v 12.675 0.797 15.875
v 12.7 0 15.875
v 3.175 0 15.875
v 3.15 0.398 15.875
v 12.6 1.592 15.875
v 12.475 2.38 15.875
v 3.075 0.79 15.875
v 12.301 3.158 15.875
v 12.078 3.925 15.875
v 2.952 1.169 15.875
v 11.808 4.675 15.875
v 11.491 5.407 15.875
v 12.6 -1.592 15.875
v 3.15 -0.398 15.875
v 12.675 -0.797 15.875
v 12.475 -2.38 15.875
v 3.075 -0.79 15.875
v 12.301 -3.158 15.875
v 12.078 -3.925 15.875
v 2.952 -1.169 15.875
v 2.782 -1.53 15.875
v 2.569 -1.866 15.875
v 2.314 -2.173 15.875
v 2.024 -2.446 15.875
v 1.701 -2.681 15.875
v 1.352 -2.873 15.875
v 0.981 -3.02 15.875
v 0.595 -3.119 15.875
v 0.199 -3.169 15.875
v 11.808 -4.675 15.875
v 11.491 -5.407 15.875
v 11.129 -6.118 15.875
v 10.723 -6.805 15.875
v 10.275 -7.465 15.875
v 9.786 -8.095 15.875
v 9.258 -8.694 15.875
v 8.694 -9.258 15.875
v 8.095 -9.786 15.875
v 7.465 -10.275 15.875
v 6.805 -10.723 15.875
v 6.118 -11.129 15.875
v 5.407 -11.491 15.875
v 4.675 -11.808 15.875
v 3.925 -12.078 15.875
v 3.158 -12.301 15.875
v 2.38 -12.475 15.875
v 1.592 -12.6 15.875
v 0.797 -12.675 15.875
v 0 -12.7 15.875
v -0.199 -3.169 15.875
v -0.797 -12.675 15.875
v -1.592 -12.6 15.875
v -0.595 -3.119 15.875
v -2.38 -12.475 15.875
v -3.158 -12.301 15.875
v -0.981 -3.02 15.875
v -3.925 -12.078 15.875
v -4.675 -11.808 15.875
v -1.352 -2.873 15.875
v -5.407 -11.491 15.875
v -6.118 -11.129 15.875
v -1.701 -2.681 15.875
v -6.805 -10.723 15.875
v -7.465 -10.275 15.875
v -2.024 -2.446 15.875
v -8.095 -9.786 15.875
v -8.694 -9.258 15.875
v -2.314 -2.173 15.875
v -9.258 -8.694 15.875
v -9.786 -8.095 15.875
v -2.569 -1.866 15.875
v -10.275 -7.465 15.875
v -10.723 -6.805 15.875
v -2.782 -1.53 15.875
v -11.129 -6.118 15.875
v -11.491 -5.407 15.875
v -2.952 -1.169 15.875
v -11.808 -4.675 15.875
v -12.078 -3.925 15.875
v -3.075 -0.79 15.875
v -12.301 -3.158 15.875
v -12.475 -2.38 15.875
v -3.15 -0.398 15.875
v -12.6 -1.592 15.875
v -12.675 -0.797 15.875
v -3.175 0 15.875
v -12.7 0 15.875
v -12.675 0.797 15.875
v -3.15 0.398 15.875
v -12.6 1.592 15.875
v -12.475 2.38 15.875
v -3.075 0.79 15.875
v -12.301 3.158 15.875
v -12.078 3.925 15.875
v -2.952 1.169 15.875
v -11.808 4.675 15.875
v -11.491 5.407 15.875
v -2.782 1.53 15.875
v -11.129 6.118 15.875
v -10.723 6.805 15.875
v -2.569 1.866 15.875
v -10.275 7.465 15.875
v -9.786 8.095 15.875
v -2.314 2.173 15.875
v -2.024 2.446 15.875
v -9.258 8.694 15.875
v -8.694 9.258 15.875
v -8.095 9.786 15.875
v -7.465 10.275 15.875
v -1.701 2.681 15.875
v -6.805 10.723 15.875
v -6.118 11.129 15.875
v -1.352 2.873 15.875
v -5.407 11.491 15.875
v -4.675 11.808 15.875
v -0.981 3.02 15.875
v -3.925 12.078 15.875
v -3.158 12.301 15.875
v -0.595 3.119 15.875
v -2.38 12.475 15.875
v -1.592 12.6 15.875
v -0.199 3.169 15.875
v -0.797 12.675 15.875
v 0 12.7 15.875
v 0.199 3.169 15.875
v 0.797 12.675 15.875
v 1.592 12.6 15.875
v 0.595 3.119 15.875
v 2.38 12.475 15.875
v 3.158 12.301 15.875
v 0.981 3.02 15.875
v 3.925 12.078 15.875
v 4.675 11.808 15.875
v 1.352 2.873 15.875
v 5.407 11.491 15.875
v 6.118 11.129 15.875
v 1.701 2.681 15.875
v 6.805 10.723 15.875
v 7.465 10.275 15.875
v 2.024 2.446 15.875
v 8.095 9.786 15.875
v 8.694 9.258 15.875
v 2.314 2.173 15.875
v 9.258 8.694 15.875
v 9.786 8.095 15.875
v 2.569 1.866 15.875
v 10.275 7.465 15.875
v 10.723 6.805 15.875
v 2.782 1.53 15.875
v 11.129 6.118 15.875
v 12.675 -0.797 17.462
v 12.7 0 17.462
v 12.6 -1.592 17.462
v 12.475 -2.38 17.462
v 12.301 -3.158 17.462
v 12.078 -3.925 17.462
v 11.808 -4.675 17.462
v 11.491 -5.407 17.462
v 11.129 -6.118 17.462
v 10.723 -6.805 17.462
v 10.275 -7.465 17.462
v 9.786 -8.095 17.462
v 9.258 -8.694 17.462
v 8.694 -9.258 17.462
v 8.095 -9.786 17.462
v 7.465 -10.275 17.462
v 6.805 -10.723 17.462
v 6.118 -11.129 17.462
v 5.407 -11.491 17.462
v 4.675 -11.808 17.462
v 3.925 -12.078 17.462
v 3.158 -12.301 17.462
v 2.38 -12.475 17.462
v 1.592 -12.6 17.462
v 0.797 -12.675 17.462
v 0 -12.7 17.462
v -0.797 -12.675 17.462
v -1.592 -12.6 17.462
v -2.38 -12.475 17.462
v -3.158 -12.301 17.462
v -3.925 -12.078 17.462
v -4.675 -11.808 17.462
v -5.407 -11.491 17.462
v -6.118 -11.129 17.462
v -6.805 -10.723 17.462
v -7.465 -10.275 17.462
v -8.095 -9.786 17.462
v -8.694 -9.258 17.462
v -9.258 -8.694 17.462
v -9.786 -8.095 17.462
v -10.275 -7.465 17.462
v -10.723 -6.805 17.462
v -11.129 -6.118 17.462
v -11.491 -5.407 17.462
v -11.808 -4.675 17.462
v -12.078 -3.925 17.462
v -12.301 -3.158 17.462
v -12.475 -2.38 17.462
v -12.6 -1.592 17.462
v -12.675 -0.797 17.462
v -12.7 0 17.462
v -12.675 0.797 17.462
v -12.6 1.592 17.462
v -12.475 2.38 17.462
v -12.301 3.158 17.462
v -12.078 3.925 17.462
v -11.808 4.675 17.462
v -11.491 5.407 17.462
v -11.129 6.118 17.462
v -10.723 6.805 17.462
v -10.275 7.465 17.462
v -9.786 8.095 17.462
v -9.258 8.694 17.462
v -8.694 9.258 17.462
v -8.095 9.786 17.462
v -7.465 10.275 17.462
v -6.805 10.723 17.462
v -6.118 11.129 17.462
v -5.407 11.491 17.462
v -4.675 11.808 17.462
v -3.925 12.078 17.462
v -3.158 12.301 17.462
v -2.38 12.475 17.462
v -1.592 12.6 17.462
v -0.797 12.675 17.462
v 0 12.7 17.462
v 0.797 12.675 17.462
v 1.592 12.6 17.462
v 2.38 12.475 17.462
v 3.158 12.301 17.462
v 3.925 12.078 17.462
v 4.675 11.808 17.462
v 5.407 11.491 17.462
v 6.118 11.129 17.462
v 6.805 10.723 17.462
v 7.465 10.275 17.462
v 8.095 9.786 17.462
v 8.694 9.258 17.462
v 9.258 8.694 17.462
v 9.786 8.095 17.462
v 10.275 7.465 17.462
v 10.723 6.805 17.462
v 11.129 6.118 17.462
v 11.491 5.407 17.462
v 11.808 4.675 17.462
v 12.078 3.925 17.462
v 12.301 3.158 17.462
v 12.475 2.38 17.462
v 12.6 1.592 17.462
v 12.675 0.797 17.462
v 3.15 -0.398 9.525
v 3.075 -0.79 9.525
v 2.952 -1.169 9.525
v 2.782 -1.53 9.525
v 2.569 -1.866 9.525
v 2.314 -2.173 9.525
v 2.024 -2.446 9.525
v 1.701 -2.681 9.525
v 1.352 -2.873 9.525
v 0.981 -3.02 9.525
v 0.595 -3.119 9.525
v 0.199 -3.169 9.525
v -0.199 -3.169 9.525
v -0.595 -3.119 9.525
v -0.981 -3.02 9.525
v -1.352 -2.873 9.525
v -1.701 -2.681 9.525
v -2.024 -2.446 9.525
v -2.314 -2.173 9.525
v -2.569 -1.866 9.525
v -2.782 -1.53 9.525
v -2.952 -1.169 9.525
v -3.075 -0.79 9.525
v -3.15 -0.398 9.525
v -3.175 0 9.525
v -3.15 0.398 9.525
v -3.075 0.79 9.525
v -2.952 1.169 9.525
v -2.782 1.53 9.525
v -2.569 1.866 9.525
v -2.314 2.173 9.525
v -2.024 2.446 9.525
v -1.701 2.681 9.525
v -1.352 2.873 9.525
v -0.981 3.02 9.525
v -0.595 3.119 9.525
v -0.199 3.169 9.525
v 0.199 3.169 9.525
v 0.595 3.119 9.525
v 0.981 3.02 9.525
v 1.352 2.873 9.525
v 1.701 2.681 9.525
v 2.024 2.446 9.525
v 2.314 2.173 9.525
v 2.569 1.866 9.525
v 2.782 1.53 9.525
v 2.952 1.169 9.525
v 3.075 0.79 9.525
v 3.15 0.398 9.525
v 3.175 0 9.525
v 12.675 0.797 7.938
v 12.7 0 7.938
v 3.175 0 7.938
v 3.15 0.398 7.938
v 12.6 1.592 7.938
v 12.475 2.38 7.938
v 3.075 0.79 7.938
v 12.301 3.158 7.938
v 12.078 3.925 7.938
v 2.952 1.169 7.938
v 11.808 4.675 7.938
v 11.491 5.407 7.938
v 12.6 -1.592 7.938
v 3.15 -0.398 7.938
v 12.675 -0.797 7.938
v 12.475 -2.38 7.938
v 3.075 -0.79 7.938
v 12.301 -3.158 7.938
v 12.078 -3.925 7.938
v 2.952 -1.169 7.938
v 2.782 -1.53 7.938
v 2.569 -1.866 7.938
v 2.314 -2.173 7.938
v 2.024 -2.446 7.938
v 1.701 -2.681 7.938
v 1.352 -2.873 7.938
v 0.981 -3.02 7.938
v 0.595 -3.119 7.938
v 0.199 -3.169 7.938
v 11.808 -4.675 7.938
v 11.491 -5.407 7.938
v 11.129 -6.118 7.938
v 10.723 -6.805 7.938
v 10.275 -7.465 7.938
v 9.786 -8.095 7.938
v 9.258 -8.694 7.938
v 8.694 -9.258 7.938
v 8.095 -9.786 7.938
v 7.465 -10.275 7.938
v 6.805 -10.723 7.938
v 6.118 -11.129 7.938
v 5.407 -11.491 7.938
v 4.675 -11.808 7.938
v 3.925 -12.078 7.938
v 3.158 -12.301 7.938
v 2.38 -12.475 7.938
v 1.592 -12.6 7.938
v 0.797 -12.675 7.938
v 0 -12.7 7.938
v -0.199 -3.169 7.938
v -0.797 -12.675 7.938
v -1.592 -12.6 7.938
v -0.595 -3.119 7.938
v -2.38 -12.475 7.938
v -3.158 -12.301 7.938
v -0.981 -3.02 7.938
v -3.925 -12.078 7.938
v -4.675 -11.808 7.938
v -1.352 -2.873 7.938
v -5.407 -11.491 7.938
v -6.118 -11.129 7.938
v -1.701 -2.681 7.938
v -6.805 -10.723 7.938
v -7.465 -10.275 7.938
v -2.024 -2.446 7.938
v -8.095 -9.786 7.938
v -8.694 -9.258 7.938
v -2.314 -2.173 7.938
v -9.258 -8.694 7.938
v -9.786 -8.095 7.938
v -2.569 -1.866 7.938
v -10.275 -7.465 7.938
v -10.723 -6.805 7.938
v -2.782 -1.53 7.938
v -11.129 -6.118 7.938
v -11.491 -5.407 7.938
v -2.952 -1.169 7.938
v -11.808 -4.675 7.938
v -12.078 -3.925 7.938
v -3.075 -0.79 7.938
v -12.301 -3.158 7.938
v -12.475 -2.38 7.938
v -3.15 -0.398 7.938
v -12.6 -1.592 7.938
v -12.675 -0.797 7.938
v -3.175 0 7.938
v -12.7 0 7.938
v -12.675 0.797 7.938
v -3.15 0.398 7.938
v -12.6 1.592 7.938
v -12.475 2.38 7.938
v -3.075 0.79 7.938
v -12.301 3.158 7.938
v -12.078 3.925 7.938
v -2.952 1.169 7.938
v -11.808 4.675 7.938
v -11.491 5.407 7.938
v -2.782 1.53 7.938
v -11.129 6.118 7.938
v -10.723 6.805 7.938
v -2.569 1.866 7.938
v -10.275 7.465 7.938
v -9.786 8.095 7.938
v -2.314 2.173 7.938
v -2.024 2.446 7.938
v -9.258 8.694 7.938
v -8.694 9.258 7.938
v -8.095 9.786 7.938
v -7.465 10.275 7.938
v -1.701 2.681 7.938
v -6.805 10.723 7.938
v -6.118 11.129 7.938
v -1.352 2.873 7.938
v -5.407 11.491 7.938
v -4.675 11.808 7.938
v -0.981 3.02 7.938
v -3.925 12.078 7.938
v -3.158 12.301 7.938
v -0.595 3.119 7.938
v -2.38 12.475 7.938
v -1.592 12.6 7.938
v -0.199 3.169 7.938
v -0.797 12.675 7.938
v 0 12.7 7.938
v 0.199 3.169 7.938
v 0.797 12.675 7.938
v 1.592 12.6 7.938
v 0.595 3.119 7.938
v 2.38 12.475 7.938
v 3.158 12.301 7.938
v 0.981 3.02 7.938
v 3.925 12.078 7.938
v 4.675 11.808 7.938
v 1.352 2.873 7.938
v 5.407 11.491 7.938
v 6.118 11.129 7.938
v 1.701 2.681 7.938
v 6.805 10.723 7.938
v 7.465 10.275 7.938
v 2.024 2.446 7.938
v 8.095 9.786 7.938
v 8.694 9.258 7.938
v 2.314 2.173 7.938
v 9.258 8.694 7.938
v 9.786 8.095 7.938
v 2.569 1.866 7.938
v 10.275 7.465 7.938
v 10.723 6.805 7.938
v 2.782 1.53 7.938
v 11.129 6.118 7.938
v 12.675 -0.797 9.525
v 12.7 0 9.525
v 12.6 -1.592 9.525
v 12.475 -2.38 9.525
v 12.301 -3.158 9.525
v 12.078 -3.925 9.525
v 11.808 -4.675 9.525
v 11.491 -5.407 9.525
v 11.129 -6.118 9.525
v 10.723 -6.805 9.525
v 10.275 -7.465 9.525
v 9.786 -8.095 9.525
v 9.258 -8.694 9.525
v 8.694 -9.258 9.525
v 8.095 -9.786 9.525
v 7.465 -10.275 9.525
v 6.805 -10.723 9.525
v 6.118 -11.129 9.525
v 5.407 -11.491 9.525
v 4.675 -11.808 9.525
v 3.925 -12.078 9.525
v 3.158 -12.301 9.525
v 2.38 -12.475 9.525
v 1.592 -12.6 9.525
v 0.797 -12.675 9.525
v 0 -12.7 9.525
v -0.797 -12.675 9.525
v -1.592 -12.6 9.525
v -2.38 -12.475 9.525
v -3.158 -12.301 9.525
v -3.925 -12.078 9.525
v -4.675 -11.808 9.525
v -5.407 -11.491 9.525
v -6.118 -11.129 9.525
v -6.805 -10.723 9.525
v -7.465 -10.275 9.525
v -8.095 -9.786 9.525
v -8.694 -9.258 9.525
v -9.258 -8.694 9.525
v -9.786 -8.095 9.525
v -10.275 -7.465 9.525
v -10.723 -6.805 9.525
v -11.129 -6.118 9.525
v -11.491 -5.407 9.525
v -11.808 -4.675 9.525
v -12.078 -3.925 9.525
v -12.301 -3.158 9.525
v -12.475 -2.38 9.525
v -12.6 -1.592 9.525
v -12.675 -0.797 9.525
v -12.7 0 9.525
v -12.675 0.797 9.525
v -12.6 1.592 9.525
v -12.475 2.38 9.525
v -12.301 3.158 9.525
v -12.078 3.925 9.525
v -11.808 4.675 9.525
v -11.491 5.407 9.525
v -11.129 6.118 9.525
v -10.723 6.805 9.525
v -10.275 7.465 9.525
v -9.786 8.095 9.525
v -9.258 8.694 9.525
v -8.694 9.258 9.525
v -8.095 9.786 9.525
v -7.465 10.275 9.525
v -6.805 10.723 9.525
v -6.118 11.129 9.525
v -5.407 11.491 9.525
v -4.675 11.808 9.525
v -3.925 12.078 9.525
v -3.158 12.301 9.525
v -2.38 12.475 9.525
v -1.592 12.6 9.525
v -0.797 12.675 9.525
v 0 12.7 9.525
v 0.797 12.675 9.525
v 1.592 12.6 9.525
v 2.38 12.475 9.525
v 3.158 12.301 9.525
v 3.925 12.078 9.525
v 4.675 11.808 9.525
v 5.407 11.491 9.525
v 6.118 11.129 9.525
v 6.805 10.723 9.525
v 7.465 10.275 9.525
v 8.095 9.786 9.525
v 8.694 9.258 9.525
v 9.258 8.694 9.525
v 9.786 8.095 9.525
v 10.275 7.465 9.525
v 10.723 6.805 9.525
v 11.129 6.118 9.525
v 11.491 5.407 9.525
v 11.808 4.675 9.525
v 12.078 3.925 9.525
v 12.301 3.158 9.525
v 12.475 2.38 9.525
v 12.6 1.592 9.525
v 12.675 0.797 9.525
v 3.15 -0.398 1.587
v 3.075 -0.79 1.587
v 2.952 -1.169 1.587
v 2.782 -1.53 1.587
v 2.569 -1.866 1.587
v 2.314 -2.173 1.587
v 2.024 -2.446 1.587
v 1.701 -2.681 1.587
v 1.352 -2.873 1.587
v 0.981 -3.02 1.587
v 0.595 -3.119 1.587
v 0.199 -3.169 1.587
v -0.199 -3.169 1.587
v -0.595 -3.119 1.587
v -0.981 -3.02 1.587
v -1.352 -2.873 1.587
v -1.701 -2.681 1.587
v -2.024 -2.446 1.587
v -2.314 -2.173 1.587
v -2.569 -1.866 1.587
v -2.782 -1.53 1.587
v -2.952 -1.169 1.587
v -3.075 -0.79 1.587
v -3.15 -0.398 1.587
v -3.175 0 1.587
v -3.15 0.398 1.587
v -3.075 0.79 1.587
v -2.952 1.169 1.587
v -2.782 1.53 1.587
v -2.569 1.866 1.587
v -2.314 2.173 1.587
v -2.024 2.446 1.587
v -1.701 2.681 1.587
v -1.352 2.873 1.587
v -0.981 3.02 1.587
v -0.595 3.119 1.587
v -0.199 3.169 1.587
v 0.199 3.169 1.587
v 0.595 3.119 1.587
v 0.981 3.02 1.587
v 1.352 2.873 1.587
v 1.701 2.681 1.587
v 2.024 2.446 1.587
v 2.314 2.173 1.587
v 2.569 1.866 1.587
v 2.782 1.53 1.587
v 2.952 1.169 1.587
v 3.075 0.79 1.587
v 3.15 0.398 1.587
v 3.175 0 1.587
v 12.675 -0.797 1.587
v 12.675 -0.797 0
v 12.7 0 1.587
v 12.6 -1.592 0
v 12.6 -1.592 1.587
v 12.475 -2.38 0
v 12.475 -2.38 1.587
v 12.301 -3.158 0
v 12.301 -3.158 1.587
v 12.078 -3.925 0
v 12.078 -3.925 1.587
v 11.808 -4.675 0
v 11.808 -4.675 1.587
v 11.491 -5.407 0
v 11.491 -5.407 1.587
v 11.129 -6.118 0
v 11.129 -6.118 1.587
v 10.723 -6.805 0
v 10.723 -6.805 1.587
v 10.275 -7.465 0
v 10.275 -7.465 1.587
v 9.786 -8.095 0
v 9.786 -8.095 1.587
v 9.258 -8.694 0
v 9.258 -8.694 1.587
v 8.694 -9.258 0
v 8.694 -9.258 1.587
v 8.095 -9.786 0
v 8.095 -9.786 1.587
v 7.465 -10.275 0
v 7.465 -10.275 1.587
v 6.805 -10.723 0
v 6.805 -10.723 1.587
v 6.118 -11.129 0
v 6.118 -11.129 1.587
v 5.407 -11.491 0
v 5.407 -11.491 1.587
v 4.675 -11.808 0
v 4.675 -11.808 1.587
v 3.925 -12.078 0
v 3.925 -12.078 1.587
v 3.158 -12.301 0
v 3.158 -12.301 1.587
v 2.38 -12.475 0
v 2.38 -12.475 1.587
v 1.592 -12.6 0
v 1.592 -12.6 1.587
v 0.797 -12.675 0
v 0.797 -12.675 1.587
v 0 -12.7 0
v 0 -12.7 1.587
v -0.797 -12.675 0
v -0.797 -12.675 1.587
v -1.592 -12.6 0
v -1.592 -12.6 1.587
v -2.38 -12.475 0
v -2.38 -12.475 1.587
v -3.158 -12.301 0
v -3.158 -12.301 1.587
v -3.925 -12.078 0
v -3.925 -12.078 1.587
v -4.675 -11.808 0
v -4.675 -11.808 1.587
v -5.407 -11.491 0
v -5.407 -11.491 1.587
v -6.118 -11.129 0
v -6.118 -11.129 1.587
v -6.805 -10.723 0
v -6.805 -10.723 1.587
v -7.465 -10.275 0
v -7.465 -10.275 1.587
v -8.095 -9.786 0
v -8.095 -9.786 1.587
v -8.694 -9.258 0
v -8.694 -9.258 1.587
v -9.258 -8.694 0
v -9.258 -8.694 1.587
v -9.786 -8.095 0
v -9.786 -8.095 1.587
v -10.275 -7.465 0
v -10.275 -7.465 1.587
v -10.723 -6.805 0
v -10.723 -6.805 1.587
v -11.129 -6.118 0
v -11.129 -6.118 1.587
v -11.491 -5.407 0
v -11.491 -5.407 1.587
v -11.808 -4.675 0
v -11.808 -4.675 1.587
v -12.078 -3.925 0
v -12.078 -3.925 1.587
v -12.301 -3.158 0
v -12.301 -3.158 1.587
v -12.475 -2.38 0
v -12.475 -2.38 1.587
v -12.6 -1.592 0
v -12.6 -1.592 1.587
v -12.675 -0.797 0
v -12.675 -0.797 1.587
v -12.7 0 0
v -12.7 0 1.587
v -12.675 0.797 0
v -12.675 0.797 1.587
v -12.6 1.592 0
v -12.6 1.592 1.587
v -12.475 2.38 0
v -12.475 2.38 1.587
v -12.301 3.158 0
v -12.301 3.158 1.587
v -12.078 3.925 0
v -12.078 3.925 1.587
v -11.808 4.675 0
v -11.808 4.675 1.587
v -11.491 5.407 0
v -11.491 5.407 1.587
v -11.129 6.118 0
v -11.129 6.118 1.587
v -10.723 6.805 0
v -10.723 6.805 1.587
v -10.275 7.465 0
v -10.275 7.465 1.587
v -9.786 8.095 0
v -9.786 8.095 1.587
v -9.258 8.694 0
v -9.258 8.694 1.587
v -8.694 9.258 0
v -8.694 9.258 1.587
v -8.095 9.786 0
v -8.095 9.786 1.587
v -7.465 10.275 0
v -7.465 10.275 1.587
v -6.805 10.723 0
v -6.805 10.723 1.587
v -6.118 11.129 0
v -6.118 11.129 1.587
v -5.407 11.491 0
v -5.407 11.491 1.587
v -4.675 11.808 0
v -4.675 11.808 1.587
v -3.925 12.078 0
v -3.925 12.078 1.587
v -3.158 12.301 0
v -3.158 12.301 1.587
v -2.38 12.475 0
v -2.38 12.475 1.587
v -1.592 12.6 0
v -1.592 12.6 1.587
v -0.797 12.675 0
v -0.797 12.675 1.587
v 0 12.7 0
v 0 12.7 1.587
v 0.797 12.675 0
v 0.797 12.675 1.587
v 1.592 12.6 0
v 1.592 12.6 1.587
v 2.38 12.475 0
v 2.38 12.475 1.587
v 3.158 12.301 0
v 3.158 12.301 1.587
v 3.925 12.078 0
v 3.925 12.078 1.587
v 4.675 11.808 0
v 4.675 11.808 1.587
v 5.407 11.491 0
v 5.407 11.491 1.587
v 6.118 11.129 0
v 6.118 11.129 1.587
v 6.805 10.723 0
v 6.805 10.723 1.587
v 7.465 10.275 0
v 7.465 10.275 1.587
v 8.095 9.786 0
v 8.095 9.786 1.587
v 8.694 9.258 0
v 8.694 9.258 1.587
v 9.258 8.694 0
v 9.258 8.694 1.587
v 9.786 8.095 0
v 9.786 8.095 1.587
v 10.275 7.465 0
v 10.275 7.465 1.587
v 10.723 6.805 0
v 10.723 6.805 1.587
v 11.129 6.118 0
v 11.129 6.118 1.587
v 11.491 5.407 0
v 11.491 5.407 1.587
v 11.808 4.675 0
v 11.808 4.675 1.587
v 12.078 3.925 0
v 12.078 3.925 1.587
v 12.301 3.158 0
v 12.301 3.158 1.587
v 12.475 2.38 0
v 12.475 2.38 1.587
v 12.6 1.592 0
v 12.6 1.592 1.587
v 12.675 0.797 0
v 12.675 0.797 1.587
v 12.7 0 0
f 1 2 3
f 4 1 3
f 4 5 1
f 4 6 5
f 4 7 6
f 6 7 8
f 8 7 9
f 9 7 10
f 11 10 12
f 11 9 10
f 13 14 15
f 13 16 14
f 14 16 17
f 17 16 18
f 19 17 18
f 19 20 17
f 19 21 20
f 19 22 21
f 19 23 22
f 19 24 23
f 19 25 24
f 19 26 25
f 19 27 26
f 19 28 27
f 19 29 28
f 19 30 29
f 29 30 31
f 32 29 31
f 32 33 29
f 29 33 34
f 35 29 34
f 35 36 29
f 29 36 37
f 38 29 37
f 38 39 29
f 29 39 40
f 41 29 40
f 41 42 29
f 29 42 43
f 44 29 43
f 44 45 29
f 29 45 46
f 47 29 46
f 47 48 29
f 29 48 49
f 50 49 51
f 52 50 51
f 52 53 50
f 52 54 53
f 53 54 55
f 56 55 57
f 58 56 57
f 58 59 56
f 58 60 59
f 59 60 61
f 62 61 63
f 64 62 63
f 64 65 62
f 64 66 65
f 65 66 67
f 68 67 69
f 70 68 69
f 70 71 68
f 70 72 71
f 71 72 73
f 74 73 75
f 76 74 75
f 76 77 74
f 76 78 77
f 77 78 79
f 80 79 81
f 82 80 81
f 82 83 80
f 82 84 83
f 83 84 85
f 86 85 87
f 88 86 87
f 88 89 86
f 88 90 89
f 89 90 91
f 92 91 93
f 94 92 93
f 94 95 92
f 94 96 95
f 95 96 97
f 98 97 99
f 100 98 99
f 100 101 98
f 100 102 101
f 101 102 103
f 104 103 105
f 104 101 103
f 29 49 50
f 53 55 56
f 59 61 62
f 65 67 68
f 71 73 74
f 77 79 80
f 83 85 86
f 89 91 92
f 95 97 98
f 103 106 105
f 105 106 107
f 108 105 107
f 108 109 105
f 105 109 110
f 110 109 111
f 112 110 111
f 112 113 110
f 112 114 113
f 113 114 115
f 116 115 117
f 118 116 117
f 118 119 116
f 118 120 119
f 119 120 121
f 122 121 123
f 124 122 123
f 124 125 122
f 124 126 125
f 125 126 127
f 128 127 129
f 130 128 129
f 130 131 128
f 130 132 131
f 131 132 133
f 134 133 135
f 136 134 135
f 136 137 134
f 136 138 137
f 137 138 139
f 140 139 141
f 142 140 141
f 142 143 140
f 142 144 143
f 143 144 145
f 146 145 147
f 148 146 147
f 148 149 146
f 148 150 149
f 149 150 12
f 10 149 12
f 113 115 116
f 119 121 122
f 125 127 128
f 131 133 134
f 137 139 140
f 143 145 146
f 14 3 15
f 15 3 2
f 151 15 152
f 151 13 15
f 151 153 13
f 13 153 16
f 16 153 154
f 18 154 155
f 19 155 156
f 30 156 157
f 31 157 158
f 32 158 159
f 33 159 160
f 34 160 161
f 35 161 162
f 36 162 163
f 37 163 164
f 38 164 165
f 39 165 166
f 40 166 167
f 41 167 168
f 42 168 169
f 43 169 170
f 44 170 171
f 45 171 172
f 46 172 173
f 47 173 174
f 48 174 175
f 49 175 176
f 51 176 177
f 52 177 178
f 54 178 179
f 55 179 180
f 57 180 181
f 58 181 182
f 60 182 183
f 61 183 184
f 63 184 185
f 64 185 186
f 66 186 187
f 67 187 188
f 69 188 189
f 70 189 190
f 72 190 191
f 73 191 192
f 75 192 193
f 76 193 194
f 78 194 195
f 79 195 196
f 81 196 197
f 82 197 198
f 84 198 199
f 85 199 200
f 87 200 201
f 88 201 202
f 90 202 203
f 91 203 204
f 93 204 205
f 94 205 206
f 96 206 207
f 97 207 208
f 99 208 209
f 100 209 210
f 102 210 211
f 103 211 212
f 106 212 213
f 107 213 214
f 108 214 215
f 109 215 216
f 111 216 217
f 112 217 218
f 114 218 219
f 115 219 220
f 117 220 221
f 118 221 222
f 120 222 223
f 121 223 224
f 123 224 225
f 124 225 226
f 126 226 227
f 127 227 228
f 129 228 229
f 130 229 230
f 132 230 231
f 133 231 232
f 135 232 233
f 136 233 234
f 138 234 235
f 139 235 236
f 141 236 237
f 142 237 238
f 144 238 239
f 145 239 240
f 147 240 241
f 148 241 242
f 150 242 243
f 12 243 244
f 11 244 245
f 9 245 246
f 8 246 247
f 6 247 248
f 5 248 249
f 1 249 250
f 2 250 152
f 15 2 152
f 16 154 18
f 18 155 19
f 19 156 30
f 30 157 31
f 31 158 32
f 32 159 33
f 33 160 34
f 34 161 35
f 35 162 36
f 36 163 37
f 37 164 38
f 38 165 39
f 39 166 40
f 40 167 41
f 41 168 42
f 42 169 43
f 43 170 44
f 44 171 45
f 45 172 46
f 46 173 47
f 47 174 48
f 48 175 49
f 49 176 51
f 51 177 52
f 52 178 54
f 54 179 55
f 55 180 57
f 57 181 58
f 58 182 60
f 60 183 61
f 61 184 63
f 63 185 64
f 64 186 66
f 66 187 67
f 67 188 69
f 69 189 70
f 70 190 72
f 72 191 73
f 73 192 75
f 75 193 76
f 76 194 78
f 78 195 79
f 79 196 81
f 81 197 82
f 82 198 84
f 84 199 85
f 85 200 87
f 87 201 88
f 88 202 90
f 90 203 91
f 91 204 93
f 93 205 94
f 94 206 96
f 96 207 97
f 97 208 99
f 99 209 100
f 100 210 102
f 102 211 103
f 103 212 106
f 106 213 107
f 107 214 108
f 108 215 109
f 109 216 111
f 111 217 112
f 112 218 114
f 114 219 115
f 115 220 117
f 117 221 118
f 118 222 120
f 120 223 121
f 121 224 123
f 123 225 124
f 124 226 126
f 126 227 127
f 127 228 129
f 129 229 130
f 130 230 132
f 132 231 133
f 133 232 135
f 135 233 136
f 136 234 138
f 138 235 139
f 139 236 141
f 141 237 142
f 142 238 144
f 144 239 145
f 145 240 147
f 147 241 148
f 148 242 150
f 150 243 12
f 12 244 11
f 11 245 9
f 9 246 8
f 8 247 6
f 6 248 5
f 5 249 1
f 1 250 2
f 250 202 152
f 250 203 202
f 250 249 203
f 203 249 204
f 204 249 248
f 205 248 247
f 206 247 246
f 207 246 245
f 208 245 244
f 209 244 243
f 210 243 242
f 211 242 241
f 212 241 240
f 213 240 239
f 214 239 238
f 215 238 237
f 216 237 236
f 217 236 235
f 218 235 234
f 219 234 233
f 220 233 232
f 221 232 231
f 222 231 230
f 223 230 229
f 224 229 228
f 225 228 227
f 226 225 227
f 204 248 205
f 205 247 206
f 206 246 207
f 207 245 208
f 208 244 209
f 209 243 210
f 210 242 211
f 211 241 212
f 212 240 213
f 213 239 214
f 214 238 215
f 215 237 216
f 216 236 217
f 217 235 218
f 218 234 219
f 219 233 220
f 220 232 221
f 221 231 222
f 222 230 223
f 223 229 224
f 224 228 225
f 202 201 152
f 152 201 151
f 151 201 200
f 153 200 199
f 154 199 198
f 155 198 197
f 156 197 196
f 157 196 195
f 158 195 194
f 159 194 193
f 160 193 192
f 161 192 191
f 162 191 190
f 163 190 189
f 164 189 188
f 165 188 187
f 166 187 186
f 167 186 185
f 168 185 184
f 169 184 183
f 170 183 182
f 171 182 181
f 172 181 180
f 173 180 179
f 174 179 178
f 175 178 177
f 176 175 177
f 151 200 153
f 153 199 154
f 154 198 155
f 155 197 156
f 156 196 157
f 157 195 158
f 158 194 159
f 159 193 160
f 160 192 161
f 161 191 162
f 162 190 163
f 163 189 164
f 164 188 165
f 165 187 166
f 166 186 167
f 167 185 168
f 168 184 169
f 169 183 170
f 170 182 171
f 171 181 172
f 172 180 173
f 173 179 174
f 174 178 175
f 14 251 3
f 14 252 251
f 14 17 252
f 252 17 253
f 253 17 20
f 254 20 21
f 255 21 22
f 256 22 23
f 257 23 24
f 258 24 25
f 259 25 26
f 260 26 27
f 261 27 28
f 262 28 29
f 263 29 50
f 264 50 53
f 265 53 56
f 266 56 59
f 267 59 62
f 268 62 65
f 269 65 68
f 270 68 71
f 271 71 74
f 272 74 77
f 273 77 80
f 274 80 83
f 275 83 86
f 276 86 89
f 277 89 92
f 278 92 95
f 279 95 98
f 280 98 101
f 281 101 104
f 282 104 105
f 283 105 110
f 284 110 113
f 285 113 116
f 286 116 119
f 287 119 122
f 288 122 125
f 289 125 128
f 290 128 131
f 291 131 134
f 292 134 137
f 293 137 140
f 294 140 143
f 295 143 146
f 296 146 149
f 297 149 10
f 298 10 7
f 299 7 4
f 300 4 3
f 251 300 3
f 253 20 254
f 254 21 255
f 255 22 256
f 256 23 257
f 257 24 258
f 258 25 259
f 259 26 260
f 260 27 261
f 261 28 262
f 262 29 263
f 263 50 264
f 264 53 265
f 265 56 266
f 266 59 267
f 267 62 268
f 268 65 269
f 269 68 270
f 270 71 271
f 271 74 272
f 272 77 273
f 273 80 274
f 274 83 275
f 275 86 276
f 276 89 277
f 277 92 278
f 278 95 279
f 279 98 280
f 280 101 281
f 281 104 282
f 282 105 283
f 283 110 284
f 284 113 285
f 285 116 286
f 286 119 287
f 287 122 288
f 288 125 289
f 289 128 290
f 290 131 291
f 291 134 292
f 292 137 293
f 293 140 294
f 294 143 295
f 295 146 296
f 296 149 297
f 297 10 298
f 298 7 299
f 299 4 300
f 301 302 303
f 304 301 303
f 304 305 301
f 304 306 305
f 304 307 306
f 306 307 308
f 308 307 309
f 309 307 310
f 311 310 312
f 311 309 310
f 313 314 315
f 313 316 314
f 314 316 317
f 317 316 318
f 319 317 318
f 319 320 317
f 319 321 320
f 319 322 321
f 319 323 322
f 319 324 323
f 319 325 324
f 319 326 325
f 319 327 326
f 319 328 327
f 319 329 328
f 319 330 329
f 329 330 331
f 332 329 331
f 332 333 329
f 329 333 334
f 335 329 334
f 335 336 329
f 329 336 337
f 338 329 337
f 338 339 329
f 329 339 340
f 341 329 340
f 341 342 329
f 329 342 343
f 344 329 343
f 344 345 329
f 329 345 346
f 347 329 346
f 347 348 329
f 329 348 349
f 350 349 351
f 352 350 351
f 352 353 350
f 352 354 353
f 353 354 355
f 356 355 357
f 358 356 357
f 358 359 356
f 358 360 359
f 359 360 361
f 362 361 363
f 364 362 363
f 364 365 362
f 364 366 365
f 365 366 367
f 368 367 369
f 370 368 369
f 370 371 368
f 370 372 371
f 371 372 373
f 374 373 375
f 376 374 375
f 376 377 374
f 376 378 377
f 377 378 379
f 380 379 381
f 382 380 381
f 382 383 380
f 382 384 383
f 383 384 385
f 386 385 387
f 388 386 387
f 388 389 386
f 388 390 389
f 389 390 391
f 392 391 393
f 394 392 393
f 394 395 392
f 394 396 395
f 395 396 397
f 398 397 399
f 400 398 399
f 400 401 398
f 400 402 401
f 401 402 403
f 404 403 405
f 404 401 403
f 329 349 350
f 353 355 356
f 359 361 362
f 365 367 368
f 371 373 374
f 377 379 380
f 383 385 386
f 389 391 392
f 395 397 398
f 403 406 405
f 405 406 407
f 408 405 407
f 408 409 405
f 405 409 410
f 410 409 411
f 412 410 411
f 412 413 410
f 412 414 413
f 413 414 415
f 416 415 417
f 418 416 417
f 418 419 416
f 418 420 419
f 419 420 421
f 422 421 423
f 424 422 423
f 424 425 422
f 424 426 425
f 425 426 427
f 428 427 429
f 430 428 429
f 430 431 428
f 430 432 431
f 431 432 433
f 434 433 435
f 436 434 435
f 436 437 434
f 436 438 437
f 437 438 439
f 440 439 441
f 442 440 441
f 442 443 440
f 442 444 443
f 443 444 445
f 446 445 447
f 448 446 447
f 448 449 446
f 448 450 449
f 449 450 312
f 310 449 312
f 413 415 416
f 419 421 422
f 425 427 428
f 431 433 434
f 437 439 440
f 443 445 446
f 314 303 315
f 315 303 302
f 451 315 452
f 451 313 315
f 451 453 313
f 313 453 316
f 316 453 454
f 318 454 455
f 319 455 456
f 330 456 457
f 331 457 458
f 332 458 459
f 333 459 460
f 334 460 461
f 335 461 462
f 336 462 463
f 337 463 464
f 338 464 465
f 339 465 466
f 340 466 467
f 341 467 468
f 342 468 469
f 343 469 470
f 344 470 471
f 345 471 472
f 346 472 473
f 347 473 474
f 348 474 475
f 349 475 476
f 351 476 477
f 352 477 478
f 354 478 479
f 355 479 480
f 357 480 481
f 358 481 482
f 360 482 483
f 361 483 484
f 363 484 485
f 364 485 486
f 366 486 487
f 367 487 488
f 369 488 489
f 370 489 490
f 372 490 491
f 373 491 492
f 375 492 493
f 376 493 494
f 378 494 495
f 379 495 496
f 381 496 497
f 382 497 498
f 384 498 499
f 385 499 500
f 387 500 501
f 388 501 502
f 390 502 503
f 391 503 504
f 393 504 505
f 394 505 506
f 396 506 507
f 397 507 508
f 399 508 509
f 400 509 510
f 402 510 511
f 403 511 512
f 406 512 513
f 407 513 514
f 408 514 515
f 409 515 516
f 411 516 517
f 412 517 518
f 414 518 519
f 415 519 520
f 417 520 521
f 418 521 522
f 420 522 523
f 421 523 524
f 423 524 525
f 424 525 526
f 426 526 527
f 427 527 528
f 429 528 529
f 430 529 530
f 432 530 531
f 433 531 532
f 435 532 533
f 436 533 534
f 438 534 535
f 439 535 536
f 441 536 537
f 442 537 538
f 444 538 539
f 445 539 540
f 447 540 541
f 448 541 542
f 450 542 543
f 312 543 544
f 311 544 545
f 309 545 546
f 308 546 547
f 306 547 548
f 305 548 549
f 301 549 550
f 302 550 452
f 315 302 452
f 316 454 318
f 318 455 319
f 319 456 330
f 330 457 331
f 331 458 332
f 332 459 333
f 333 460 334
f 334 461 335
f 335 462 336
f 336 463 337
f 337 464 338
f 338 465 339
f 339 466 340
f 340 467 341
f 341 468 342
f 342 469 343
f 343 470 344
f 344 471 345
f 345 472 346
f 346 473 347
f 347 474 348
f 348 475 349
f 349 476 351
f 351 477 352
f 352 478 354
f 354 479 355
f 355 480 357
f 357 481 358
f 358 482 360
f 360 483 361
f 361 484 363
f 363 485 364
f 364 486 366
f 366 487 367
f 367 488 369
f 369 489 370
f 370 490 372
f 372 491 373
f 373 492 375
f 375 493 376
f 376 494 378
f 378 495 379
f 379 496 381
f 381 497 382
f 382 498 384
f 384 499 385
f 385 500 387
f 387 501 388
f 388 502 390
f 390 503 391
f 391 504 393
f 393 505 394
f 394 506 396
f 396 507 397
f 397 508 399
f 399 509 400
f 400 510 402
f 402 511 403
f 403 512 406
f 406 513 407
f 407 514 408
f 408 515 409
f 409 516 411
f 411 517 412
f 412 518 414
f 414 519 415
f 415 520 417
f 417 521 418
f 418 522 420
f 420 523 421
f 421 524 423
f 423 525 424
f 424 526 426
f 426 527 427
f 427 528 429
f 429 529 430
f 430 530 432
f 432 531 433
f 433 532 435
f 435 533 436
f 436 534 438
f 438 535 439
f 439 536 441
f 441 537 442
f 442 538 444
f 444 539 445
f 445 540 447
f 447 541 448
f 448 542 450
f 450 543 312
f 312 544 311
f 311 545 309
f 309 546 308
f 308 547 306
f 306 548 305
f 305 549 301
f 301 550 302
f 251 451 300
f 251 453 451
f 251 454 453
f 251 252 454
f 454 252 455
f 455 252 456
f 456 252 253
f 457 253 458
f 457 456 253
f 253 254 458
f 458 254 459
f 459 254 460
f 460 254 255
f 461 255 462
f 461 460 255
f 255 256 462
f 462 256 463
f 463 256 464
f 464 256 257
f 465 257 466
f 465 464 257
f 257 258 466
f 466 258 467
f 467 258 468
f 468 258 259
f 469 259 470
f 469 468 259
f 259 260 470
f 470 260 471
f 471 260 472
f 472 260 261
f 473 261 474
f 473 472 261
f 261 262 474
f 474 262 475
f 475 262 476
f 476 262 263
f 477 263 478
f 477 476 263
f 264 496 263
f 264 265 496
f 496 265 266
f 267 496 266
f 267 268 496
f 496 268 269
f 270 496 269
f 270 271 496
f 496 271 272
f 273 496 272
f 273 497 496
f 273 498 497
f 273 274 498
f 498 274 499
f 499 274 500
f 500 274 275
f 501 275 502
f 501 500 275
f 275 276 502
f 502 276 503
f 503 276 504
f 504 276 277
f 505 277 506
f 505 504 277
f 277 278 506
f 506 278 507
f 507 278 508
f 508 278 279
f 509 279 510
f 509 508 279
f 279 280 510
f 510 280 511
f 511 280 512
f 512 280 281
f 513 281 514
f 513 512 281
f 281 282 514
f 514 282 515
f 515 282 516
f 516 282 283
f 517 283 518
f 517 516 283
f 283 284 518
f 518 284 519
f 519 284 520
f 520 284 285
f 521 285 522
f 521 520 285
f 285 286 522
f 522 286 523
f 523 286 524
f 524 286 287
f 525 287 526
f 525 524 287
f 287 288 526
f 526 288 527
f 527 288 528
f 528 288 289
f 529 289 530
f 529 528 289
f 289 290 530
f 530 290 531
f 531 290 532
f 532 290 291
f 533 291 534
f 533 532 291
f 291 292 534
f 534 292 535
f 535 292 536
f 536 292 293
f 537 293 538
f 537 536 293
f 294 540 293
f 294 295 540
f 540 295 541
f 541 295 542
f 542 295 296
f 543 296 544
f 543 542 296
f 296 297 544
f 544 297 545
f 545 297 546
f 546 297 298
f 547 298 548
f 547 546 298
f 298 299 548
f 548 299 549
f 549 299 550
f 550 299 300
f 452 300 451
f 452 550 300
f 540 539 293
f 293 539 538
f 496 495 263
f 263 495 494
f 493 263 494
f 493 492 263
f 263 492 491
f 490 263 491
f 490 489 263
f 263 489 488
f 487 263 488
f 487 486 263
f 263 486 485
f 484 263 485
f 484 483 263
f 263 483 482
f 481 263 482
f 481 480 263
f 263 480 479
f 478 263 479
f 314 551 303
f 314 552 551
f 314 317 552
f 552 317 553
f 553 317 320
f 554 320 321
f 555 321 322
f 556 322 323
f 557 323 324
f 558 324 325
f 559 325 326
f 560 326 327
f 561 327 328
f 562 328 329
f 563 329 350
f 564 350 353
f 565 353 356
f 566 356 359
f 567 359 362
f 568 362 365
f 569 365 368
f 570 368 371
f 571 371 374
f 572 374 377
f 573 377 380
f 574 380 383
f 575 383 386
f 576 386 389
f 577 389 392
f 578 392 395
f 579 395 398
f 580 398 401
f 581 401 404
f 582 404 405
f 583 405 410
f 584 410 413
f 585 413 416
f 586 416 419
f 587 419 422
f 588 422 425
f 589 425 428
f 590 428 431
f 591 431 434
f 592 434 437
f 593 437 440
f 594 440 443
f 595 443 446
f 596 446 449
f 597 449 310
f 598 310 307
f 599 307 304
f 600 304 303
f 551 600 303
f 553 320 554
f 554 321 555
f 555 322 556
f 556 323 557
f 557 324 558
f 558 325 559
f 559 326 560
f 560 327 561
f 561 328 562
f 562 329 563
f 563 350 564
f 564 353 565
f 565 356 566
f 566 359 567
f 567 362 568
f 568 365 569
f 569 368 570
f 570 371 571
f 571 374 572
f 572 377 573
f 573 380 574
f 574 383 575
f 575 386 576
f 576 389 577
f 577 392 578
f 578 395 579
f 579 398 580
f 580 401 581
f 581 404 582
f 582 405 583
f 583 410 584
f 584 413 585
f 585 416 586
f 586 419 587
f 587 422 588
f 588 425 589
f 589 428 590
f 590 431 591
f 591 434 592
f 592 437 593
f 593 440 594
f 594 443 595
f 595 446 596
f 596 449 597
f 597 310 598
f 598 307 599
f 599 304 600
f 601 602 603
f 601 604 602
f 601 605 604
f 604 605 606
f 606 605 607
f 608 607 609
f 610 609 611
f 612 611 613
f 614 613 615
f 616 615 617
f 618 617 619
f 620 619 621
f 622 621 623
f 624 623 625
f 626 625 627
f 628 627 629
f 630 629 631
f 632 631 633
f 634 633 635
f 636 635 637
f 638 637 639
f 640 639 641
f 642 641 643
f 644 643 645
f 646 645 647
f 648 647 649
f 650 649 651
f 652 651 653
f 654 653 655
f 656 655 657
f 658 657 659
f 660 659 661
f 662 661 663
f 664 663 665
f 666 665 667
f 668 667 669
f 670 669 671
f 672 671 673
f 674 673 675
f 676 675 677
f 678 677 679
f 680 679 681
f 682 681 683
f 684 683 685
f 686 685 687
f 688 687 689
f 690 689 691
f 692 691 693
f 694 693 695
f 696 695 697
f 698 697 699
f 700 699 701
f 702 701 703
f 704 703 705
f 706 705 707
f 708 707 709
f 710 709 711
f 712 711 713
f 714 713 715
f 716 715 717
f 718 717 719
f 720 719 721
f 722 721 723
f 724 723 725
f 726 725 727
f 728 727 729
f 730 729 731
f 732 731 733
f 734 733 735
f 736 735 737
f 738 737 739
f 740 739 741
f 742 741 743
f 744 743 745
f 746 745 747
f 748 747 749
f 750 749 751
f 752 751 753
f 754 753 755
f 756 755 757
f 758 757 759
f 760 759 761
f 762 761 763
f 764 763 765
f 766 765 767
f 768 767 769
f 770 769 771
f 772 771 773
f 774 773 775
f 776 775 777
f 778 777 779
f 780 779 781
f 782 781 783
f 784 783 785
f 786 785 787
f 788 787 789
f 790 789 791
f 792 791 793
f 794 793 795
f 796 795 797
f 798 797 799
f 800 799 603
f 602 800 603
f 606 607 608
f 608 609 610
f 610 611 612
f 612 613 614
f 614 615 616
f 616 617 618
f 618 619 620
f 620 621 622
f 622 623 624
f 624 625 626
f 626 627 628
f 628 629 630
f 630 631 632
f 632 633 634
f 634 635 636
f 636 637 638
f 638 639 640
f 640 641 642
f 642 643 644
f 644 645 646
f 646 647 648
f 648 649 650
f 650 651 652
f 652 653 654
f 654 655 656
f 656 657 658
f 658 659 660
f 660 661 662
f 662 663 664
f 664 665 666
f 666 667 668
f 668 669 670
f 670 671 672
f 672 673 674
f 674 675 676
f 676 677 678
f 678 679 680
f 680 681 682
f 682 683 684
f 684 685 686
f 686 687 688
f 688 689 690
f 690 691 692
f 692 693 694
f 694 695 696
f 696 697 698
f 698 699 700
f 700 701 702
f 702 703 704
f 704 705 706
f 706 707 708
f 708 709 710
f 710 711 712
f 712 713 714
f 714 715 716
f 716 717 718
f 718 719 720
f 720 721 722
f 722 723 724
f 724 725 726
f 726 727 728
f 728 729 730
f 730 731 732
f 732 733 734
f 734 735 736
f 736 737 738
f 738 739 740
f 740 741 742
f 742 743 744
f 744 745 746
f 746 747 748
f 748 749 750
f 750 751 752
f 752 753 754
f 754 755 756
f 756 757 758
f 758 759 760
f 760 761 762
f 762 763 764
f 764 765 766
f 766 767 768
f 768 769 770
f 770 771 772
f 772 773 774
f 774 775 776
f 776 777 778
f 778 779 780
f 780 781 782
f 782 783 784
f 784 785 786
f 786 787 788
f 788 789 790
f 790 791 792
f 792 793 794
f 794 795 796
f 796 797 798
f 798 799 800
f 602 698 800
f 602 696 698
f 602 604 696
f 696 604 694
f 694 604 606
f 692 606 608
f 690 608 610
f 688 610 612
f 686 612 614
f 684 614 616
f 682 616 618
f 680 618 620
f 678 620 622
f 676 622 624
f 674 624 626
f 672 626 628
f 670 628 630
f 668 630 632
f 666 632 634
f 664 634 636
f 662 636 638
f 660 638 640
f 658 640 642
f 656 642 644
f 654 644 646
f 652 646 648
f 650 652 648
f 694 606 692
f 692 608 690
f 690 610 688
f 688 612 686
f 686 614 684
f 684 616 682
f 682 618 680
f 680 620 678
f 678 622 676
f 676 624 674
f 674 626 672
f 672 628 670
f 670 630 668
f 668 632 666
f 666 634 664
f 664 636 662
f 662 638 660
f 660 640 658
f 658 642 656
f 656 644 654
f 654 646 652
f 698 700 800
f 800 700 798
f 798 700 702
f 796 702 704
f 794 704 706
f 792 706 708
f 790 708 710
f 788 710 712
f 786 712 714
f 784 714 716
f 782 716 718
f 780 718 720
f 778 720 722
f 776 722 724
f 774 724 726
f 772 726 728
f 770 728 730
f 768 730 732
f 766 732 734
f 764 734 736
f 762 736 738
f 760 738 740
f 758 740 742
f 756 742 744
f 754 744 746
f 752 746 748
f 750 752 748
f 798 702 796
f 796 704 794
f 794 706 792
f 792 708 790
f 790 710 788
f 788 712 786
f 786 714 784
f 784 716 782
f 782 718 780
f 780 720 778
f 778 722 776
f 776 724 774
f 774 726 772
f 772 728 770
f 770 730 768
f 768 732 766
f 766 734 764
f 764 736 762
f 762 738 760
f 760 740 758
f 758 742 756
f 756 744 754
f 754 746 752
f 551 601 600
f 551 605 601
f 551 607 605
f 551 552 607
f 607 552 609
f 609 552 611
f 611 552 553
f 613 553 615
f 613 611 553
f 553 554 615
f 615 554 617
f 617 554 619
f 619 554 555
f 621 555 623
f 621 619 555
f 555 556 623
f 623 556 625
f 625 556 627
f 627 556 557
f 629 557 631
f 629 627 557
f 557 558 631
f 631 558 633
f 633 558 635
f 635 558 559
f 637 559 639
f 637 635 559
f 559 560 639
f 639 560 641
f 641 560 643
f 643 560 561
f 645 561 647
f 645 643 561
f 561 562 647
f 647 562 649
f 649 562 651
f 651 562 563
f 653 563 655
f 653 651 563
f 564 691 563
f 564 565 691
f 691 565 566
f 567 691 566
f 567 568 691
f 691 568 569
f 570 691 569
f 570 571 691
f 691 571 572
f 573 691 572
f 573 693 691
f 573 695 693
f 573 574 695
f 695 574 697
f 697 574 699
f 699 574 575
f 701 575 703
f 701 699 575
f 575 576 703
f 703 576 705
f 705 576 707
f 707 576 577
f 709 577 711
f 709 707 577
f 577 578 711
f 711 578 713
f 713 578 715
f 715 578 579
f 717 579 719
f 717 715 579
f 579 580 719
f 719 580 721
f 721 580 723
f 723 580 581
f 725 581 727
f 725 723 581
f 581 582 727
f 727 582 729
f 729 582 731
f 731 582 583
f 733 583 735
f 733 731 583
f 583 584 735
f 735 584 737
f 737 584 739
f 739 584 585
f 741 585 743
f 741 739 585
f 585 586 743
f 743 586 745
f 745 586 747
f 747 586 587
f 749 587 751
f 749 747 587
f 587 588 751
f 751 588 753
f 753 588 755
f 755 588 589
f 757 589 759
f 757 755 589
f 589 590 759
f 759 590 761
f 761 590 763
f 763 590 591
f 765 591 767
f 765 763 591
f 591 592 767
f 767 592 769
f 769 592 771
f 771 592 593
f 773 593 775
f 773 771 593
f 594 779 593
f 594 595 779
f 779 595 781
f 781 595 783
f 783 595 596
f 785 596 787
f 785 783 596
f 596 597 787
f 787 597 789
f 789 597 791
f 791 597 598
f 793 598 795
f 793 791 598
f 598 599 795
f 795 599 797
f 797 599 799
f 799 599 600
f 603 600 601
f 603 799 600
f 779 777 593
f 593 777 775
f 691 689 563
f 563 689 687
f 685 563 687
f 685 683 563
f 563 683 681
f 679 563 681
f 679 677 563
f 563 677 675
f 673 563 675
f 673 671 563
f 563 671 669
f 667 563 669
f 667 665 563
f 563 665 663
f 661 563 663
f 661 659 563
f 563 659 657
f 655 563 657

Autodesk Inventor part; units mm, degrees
ref_plane "YZ Plane" through (0, 0, 0) normal (1, 0, 0) x (0, 1, 0)
ref_plane "XZ Plane" through (0, 0, 0) normal (0, 1, 0) x (-1, 0, 0)
ref_plane "XY Plane" through (0, 0, 0) normal (0, 0, 1) x (1, 0, 0)
sketch "Sketch1" plane through (0, 0, 0) normal (0, 0, 1) x (1, 0, 0)
  circle A0 centre (0, 0) radius 12.7
  dimension "d0" = 25.4
extrude "Extrusion1" add sketch "Sketch1" along normal blind 1.5875
sketch "Sketch2" plane through (0, 0, 1.5875) normal (0, 0, 1) x (1, 0, 0)
  circle A0 centre (0, 0) radius 3.175
  dimension "d3" = 6.35
extrude "Extrusion2" add sketch "Sketch2" along normal blind 6.35
sketch "Sketch3" plane through (0, 0, 7.9375) normal (0, 0, 1) x (1, 0, 0)
  circle A0 centre (0, 0) radius 12.7
  dimension "d6" = 25.4
extrude "Extrusion3" add sketch "Sketch3" along normal blind 1.5875
sketch "Sketch4" plane through (0, 0, 9.525) normal (0, 0, 1) x (1, 0, 0)
  circle A0 centre (0, 0) radius 3.175
  dimension "d9" = 6.35
extrude "Extrusion4" add sketch "Sketch4" along normal blind 6.35
sketch "Sketch5" plane through (0, 0, 15.875) normal (0, 0, 1) x (1, 0, 0)
  circle A0 centre (0, 0) radius 12.7
  dimension "d12" = 25.4
extrude "Extrusion5" add sketch "Sketch5" along normal blind 1.5875
equation "\"d0\" = spoolD"
equation "\"d1\" = spoolT"
equation "\"d3\" = hubD"
equation "\"d4\" = hubH"
equation "\"d6\" = spoolD"
equation "\"d7\" = spoolT"
equation "\"d9\" = hubD"
equation "\"d10\" = hubH"
equation "\"d12\" = spoolD"
equation "\"d13\" = spoolT"
equation "\"spoolD\" = 25.4"
equation "\"hubD\" = 6.35"
equation "\"spoolT\" = 1.5875"
equation "\"hubH\" = 6.35"
equation "\"hornT\" = 1.5875"
equation "\"hornD\" = 25.4"
equation "\"hornS\" = 2.794"
equation "\"hornOD\" = 8.89"
equation "\"hornH\" = 2.54"
equation "\"hornID\" = 6.096"
equation "\"inset\" = 2.032"
equation "\"insetD\" = 5.842"
equation "\"servW\" = 20.1168"
equation "\"servL\" = 40.5892"
equation "\"servML\" = 49.784"
equation "\"servMW\" = 10.033"
equation "\"servMD\" = 3.175"
equation "\"housL\" = 53.975"
equation "\"housW\" = 28.575"
equation "\"housT\" = 2.54"
equation "\"housBT\" = 1.5875"
equation "\"housH\" = 39.116"
equation "\"guideW\" = 9.144"
equation "\"guideH\" = 23.114"
equation "\"guideD\" = 3.175"
properties part number "Spool"
